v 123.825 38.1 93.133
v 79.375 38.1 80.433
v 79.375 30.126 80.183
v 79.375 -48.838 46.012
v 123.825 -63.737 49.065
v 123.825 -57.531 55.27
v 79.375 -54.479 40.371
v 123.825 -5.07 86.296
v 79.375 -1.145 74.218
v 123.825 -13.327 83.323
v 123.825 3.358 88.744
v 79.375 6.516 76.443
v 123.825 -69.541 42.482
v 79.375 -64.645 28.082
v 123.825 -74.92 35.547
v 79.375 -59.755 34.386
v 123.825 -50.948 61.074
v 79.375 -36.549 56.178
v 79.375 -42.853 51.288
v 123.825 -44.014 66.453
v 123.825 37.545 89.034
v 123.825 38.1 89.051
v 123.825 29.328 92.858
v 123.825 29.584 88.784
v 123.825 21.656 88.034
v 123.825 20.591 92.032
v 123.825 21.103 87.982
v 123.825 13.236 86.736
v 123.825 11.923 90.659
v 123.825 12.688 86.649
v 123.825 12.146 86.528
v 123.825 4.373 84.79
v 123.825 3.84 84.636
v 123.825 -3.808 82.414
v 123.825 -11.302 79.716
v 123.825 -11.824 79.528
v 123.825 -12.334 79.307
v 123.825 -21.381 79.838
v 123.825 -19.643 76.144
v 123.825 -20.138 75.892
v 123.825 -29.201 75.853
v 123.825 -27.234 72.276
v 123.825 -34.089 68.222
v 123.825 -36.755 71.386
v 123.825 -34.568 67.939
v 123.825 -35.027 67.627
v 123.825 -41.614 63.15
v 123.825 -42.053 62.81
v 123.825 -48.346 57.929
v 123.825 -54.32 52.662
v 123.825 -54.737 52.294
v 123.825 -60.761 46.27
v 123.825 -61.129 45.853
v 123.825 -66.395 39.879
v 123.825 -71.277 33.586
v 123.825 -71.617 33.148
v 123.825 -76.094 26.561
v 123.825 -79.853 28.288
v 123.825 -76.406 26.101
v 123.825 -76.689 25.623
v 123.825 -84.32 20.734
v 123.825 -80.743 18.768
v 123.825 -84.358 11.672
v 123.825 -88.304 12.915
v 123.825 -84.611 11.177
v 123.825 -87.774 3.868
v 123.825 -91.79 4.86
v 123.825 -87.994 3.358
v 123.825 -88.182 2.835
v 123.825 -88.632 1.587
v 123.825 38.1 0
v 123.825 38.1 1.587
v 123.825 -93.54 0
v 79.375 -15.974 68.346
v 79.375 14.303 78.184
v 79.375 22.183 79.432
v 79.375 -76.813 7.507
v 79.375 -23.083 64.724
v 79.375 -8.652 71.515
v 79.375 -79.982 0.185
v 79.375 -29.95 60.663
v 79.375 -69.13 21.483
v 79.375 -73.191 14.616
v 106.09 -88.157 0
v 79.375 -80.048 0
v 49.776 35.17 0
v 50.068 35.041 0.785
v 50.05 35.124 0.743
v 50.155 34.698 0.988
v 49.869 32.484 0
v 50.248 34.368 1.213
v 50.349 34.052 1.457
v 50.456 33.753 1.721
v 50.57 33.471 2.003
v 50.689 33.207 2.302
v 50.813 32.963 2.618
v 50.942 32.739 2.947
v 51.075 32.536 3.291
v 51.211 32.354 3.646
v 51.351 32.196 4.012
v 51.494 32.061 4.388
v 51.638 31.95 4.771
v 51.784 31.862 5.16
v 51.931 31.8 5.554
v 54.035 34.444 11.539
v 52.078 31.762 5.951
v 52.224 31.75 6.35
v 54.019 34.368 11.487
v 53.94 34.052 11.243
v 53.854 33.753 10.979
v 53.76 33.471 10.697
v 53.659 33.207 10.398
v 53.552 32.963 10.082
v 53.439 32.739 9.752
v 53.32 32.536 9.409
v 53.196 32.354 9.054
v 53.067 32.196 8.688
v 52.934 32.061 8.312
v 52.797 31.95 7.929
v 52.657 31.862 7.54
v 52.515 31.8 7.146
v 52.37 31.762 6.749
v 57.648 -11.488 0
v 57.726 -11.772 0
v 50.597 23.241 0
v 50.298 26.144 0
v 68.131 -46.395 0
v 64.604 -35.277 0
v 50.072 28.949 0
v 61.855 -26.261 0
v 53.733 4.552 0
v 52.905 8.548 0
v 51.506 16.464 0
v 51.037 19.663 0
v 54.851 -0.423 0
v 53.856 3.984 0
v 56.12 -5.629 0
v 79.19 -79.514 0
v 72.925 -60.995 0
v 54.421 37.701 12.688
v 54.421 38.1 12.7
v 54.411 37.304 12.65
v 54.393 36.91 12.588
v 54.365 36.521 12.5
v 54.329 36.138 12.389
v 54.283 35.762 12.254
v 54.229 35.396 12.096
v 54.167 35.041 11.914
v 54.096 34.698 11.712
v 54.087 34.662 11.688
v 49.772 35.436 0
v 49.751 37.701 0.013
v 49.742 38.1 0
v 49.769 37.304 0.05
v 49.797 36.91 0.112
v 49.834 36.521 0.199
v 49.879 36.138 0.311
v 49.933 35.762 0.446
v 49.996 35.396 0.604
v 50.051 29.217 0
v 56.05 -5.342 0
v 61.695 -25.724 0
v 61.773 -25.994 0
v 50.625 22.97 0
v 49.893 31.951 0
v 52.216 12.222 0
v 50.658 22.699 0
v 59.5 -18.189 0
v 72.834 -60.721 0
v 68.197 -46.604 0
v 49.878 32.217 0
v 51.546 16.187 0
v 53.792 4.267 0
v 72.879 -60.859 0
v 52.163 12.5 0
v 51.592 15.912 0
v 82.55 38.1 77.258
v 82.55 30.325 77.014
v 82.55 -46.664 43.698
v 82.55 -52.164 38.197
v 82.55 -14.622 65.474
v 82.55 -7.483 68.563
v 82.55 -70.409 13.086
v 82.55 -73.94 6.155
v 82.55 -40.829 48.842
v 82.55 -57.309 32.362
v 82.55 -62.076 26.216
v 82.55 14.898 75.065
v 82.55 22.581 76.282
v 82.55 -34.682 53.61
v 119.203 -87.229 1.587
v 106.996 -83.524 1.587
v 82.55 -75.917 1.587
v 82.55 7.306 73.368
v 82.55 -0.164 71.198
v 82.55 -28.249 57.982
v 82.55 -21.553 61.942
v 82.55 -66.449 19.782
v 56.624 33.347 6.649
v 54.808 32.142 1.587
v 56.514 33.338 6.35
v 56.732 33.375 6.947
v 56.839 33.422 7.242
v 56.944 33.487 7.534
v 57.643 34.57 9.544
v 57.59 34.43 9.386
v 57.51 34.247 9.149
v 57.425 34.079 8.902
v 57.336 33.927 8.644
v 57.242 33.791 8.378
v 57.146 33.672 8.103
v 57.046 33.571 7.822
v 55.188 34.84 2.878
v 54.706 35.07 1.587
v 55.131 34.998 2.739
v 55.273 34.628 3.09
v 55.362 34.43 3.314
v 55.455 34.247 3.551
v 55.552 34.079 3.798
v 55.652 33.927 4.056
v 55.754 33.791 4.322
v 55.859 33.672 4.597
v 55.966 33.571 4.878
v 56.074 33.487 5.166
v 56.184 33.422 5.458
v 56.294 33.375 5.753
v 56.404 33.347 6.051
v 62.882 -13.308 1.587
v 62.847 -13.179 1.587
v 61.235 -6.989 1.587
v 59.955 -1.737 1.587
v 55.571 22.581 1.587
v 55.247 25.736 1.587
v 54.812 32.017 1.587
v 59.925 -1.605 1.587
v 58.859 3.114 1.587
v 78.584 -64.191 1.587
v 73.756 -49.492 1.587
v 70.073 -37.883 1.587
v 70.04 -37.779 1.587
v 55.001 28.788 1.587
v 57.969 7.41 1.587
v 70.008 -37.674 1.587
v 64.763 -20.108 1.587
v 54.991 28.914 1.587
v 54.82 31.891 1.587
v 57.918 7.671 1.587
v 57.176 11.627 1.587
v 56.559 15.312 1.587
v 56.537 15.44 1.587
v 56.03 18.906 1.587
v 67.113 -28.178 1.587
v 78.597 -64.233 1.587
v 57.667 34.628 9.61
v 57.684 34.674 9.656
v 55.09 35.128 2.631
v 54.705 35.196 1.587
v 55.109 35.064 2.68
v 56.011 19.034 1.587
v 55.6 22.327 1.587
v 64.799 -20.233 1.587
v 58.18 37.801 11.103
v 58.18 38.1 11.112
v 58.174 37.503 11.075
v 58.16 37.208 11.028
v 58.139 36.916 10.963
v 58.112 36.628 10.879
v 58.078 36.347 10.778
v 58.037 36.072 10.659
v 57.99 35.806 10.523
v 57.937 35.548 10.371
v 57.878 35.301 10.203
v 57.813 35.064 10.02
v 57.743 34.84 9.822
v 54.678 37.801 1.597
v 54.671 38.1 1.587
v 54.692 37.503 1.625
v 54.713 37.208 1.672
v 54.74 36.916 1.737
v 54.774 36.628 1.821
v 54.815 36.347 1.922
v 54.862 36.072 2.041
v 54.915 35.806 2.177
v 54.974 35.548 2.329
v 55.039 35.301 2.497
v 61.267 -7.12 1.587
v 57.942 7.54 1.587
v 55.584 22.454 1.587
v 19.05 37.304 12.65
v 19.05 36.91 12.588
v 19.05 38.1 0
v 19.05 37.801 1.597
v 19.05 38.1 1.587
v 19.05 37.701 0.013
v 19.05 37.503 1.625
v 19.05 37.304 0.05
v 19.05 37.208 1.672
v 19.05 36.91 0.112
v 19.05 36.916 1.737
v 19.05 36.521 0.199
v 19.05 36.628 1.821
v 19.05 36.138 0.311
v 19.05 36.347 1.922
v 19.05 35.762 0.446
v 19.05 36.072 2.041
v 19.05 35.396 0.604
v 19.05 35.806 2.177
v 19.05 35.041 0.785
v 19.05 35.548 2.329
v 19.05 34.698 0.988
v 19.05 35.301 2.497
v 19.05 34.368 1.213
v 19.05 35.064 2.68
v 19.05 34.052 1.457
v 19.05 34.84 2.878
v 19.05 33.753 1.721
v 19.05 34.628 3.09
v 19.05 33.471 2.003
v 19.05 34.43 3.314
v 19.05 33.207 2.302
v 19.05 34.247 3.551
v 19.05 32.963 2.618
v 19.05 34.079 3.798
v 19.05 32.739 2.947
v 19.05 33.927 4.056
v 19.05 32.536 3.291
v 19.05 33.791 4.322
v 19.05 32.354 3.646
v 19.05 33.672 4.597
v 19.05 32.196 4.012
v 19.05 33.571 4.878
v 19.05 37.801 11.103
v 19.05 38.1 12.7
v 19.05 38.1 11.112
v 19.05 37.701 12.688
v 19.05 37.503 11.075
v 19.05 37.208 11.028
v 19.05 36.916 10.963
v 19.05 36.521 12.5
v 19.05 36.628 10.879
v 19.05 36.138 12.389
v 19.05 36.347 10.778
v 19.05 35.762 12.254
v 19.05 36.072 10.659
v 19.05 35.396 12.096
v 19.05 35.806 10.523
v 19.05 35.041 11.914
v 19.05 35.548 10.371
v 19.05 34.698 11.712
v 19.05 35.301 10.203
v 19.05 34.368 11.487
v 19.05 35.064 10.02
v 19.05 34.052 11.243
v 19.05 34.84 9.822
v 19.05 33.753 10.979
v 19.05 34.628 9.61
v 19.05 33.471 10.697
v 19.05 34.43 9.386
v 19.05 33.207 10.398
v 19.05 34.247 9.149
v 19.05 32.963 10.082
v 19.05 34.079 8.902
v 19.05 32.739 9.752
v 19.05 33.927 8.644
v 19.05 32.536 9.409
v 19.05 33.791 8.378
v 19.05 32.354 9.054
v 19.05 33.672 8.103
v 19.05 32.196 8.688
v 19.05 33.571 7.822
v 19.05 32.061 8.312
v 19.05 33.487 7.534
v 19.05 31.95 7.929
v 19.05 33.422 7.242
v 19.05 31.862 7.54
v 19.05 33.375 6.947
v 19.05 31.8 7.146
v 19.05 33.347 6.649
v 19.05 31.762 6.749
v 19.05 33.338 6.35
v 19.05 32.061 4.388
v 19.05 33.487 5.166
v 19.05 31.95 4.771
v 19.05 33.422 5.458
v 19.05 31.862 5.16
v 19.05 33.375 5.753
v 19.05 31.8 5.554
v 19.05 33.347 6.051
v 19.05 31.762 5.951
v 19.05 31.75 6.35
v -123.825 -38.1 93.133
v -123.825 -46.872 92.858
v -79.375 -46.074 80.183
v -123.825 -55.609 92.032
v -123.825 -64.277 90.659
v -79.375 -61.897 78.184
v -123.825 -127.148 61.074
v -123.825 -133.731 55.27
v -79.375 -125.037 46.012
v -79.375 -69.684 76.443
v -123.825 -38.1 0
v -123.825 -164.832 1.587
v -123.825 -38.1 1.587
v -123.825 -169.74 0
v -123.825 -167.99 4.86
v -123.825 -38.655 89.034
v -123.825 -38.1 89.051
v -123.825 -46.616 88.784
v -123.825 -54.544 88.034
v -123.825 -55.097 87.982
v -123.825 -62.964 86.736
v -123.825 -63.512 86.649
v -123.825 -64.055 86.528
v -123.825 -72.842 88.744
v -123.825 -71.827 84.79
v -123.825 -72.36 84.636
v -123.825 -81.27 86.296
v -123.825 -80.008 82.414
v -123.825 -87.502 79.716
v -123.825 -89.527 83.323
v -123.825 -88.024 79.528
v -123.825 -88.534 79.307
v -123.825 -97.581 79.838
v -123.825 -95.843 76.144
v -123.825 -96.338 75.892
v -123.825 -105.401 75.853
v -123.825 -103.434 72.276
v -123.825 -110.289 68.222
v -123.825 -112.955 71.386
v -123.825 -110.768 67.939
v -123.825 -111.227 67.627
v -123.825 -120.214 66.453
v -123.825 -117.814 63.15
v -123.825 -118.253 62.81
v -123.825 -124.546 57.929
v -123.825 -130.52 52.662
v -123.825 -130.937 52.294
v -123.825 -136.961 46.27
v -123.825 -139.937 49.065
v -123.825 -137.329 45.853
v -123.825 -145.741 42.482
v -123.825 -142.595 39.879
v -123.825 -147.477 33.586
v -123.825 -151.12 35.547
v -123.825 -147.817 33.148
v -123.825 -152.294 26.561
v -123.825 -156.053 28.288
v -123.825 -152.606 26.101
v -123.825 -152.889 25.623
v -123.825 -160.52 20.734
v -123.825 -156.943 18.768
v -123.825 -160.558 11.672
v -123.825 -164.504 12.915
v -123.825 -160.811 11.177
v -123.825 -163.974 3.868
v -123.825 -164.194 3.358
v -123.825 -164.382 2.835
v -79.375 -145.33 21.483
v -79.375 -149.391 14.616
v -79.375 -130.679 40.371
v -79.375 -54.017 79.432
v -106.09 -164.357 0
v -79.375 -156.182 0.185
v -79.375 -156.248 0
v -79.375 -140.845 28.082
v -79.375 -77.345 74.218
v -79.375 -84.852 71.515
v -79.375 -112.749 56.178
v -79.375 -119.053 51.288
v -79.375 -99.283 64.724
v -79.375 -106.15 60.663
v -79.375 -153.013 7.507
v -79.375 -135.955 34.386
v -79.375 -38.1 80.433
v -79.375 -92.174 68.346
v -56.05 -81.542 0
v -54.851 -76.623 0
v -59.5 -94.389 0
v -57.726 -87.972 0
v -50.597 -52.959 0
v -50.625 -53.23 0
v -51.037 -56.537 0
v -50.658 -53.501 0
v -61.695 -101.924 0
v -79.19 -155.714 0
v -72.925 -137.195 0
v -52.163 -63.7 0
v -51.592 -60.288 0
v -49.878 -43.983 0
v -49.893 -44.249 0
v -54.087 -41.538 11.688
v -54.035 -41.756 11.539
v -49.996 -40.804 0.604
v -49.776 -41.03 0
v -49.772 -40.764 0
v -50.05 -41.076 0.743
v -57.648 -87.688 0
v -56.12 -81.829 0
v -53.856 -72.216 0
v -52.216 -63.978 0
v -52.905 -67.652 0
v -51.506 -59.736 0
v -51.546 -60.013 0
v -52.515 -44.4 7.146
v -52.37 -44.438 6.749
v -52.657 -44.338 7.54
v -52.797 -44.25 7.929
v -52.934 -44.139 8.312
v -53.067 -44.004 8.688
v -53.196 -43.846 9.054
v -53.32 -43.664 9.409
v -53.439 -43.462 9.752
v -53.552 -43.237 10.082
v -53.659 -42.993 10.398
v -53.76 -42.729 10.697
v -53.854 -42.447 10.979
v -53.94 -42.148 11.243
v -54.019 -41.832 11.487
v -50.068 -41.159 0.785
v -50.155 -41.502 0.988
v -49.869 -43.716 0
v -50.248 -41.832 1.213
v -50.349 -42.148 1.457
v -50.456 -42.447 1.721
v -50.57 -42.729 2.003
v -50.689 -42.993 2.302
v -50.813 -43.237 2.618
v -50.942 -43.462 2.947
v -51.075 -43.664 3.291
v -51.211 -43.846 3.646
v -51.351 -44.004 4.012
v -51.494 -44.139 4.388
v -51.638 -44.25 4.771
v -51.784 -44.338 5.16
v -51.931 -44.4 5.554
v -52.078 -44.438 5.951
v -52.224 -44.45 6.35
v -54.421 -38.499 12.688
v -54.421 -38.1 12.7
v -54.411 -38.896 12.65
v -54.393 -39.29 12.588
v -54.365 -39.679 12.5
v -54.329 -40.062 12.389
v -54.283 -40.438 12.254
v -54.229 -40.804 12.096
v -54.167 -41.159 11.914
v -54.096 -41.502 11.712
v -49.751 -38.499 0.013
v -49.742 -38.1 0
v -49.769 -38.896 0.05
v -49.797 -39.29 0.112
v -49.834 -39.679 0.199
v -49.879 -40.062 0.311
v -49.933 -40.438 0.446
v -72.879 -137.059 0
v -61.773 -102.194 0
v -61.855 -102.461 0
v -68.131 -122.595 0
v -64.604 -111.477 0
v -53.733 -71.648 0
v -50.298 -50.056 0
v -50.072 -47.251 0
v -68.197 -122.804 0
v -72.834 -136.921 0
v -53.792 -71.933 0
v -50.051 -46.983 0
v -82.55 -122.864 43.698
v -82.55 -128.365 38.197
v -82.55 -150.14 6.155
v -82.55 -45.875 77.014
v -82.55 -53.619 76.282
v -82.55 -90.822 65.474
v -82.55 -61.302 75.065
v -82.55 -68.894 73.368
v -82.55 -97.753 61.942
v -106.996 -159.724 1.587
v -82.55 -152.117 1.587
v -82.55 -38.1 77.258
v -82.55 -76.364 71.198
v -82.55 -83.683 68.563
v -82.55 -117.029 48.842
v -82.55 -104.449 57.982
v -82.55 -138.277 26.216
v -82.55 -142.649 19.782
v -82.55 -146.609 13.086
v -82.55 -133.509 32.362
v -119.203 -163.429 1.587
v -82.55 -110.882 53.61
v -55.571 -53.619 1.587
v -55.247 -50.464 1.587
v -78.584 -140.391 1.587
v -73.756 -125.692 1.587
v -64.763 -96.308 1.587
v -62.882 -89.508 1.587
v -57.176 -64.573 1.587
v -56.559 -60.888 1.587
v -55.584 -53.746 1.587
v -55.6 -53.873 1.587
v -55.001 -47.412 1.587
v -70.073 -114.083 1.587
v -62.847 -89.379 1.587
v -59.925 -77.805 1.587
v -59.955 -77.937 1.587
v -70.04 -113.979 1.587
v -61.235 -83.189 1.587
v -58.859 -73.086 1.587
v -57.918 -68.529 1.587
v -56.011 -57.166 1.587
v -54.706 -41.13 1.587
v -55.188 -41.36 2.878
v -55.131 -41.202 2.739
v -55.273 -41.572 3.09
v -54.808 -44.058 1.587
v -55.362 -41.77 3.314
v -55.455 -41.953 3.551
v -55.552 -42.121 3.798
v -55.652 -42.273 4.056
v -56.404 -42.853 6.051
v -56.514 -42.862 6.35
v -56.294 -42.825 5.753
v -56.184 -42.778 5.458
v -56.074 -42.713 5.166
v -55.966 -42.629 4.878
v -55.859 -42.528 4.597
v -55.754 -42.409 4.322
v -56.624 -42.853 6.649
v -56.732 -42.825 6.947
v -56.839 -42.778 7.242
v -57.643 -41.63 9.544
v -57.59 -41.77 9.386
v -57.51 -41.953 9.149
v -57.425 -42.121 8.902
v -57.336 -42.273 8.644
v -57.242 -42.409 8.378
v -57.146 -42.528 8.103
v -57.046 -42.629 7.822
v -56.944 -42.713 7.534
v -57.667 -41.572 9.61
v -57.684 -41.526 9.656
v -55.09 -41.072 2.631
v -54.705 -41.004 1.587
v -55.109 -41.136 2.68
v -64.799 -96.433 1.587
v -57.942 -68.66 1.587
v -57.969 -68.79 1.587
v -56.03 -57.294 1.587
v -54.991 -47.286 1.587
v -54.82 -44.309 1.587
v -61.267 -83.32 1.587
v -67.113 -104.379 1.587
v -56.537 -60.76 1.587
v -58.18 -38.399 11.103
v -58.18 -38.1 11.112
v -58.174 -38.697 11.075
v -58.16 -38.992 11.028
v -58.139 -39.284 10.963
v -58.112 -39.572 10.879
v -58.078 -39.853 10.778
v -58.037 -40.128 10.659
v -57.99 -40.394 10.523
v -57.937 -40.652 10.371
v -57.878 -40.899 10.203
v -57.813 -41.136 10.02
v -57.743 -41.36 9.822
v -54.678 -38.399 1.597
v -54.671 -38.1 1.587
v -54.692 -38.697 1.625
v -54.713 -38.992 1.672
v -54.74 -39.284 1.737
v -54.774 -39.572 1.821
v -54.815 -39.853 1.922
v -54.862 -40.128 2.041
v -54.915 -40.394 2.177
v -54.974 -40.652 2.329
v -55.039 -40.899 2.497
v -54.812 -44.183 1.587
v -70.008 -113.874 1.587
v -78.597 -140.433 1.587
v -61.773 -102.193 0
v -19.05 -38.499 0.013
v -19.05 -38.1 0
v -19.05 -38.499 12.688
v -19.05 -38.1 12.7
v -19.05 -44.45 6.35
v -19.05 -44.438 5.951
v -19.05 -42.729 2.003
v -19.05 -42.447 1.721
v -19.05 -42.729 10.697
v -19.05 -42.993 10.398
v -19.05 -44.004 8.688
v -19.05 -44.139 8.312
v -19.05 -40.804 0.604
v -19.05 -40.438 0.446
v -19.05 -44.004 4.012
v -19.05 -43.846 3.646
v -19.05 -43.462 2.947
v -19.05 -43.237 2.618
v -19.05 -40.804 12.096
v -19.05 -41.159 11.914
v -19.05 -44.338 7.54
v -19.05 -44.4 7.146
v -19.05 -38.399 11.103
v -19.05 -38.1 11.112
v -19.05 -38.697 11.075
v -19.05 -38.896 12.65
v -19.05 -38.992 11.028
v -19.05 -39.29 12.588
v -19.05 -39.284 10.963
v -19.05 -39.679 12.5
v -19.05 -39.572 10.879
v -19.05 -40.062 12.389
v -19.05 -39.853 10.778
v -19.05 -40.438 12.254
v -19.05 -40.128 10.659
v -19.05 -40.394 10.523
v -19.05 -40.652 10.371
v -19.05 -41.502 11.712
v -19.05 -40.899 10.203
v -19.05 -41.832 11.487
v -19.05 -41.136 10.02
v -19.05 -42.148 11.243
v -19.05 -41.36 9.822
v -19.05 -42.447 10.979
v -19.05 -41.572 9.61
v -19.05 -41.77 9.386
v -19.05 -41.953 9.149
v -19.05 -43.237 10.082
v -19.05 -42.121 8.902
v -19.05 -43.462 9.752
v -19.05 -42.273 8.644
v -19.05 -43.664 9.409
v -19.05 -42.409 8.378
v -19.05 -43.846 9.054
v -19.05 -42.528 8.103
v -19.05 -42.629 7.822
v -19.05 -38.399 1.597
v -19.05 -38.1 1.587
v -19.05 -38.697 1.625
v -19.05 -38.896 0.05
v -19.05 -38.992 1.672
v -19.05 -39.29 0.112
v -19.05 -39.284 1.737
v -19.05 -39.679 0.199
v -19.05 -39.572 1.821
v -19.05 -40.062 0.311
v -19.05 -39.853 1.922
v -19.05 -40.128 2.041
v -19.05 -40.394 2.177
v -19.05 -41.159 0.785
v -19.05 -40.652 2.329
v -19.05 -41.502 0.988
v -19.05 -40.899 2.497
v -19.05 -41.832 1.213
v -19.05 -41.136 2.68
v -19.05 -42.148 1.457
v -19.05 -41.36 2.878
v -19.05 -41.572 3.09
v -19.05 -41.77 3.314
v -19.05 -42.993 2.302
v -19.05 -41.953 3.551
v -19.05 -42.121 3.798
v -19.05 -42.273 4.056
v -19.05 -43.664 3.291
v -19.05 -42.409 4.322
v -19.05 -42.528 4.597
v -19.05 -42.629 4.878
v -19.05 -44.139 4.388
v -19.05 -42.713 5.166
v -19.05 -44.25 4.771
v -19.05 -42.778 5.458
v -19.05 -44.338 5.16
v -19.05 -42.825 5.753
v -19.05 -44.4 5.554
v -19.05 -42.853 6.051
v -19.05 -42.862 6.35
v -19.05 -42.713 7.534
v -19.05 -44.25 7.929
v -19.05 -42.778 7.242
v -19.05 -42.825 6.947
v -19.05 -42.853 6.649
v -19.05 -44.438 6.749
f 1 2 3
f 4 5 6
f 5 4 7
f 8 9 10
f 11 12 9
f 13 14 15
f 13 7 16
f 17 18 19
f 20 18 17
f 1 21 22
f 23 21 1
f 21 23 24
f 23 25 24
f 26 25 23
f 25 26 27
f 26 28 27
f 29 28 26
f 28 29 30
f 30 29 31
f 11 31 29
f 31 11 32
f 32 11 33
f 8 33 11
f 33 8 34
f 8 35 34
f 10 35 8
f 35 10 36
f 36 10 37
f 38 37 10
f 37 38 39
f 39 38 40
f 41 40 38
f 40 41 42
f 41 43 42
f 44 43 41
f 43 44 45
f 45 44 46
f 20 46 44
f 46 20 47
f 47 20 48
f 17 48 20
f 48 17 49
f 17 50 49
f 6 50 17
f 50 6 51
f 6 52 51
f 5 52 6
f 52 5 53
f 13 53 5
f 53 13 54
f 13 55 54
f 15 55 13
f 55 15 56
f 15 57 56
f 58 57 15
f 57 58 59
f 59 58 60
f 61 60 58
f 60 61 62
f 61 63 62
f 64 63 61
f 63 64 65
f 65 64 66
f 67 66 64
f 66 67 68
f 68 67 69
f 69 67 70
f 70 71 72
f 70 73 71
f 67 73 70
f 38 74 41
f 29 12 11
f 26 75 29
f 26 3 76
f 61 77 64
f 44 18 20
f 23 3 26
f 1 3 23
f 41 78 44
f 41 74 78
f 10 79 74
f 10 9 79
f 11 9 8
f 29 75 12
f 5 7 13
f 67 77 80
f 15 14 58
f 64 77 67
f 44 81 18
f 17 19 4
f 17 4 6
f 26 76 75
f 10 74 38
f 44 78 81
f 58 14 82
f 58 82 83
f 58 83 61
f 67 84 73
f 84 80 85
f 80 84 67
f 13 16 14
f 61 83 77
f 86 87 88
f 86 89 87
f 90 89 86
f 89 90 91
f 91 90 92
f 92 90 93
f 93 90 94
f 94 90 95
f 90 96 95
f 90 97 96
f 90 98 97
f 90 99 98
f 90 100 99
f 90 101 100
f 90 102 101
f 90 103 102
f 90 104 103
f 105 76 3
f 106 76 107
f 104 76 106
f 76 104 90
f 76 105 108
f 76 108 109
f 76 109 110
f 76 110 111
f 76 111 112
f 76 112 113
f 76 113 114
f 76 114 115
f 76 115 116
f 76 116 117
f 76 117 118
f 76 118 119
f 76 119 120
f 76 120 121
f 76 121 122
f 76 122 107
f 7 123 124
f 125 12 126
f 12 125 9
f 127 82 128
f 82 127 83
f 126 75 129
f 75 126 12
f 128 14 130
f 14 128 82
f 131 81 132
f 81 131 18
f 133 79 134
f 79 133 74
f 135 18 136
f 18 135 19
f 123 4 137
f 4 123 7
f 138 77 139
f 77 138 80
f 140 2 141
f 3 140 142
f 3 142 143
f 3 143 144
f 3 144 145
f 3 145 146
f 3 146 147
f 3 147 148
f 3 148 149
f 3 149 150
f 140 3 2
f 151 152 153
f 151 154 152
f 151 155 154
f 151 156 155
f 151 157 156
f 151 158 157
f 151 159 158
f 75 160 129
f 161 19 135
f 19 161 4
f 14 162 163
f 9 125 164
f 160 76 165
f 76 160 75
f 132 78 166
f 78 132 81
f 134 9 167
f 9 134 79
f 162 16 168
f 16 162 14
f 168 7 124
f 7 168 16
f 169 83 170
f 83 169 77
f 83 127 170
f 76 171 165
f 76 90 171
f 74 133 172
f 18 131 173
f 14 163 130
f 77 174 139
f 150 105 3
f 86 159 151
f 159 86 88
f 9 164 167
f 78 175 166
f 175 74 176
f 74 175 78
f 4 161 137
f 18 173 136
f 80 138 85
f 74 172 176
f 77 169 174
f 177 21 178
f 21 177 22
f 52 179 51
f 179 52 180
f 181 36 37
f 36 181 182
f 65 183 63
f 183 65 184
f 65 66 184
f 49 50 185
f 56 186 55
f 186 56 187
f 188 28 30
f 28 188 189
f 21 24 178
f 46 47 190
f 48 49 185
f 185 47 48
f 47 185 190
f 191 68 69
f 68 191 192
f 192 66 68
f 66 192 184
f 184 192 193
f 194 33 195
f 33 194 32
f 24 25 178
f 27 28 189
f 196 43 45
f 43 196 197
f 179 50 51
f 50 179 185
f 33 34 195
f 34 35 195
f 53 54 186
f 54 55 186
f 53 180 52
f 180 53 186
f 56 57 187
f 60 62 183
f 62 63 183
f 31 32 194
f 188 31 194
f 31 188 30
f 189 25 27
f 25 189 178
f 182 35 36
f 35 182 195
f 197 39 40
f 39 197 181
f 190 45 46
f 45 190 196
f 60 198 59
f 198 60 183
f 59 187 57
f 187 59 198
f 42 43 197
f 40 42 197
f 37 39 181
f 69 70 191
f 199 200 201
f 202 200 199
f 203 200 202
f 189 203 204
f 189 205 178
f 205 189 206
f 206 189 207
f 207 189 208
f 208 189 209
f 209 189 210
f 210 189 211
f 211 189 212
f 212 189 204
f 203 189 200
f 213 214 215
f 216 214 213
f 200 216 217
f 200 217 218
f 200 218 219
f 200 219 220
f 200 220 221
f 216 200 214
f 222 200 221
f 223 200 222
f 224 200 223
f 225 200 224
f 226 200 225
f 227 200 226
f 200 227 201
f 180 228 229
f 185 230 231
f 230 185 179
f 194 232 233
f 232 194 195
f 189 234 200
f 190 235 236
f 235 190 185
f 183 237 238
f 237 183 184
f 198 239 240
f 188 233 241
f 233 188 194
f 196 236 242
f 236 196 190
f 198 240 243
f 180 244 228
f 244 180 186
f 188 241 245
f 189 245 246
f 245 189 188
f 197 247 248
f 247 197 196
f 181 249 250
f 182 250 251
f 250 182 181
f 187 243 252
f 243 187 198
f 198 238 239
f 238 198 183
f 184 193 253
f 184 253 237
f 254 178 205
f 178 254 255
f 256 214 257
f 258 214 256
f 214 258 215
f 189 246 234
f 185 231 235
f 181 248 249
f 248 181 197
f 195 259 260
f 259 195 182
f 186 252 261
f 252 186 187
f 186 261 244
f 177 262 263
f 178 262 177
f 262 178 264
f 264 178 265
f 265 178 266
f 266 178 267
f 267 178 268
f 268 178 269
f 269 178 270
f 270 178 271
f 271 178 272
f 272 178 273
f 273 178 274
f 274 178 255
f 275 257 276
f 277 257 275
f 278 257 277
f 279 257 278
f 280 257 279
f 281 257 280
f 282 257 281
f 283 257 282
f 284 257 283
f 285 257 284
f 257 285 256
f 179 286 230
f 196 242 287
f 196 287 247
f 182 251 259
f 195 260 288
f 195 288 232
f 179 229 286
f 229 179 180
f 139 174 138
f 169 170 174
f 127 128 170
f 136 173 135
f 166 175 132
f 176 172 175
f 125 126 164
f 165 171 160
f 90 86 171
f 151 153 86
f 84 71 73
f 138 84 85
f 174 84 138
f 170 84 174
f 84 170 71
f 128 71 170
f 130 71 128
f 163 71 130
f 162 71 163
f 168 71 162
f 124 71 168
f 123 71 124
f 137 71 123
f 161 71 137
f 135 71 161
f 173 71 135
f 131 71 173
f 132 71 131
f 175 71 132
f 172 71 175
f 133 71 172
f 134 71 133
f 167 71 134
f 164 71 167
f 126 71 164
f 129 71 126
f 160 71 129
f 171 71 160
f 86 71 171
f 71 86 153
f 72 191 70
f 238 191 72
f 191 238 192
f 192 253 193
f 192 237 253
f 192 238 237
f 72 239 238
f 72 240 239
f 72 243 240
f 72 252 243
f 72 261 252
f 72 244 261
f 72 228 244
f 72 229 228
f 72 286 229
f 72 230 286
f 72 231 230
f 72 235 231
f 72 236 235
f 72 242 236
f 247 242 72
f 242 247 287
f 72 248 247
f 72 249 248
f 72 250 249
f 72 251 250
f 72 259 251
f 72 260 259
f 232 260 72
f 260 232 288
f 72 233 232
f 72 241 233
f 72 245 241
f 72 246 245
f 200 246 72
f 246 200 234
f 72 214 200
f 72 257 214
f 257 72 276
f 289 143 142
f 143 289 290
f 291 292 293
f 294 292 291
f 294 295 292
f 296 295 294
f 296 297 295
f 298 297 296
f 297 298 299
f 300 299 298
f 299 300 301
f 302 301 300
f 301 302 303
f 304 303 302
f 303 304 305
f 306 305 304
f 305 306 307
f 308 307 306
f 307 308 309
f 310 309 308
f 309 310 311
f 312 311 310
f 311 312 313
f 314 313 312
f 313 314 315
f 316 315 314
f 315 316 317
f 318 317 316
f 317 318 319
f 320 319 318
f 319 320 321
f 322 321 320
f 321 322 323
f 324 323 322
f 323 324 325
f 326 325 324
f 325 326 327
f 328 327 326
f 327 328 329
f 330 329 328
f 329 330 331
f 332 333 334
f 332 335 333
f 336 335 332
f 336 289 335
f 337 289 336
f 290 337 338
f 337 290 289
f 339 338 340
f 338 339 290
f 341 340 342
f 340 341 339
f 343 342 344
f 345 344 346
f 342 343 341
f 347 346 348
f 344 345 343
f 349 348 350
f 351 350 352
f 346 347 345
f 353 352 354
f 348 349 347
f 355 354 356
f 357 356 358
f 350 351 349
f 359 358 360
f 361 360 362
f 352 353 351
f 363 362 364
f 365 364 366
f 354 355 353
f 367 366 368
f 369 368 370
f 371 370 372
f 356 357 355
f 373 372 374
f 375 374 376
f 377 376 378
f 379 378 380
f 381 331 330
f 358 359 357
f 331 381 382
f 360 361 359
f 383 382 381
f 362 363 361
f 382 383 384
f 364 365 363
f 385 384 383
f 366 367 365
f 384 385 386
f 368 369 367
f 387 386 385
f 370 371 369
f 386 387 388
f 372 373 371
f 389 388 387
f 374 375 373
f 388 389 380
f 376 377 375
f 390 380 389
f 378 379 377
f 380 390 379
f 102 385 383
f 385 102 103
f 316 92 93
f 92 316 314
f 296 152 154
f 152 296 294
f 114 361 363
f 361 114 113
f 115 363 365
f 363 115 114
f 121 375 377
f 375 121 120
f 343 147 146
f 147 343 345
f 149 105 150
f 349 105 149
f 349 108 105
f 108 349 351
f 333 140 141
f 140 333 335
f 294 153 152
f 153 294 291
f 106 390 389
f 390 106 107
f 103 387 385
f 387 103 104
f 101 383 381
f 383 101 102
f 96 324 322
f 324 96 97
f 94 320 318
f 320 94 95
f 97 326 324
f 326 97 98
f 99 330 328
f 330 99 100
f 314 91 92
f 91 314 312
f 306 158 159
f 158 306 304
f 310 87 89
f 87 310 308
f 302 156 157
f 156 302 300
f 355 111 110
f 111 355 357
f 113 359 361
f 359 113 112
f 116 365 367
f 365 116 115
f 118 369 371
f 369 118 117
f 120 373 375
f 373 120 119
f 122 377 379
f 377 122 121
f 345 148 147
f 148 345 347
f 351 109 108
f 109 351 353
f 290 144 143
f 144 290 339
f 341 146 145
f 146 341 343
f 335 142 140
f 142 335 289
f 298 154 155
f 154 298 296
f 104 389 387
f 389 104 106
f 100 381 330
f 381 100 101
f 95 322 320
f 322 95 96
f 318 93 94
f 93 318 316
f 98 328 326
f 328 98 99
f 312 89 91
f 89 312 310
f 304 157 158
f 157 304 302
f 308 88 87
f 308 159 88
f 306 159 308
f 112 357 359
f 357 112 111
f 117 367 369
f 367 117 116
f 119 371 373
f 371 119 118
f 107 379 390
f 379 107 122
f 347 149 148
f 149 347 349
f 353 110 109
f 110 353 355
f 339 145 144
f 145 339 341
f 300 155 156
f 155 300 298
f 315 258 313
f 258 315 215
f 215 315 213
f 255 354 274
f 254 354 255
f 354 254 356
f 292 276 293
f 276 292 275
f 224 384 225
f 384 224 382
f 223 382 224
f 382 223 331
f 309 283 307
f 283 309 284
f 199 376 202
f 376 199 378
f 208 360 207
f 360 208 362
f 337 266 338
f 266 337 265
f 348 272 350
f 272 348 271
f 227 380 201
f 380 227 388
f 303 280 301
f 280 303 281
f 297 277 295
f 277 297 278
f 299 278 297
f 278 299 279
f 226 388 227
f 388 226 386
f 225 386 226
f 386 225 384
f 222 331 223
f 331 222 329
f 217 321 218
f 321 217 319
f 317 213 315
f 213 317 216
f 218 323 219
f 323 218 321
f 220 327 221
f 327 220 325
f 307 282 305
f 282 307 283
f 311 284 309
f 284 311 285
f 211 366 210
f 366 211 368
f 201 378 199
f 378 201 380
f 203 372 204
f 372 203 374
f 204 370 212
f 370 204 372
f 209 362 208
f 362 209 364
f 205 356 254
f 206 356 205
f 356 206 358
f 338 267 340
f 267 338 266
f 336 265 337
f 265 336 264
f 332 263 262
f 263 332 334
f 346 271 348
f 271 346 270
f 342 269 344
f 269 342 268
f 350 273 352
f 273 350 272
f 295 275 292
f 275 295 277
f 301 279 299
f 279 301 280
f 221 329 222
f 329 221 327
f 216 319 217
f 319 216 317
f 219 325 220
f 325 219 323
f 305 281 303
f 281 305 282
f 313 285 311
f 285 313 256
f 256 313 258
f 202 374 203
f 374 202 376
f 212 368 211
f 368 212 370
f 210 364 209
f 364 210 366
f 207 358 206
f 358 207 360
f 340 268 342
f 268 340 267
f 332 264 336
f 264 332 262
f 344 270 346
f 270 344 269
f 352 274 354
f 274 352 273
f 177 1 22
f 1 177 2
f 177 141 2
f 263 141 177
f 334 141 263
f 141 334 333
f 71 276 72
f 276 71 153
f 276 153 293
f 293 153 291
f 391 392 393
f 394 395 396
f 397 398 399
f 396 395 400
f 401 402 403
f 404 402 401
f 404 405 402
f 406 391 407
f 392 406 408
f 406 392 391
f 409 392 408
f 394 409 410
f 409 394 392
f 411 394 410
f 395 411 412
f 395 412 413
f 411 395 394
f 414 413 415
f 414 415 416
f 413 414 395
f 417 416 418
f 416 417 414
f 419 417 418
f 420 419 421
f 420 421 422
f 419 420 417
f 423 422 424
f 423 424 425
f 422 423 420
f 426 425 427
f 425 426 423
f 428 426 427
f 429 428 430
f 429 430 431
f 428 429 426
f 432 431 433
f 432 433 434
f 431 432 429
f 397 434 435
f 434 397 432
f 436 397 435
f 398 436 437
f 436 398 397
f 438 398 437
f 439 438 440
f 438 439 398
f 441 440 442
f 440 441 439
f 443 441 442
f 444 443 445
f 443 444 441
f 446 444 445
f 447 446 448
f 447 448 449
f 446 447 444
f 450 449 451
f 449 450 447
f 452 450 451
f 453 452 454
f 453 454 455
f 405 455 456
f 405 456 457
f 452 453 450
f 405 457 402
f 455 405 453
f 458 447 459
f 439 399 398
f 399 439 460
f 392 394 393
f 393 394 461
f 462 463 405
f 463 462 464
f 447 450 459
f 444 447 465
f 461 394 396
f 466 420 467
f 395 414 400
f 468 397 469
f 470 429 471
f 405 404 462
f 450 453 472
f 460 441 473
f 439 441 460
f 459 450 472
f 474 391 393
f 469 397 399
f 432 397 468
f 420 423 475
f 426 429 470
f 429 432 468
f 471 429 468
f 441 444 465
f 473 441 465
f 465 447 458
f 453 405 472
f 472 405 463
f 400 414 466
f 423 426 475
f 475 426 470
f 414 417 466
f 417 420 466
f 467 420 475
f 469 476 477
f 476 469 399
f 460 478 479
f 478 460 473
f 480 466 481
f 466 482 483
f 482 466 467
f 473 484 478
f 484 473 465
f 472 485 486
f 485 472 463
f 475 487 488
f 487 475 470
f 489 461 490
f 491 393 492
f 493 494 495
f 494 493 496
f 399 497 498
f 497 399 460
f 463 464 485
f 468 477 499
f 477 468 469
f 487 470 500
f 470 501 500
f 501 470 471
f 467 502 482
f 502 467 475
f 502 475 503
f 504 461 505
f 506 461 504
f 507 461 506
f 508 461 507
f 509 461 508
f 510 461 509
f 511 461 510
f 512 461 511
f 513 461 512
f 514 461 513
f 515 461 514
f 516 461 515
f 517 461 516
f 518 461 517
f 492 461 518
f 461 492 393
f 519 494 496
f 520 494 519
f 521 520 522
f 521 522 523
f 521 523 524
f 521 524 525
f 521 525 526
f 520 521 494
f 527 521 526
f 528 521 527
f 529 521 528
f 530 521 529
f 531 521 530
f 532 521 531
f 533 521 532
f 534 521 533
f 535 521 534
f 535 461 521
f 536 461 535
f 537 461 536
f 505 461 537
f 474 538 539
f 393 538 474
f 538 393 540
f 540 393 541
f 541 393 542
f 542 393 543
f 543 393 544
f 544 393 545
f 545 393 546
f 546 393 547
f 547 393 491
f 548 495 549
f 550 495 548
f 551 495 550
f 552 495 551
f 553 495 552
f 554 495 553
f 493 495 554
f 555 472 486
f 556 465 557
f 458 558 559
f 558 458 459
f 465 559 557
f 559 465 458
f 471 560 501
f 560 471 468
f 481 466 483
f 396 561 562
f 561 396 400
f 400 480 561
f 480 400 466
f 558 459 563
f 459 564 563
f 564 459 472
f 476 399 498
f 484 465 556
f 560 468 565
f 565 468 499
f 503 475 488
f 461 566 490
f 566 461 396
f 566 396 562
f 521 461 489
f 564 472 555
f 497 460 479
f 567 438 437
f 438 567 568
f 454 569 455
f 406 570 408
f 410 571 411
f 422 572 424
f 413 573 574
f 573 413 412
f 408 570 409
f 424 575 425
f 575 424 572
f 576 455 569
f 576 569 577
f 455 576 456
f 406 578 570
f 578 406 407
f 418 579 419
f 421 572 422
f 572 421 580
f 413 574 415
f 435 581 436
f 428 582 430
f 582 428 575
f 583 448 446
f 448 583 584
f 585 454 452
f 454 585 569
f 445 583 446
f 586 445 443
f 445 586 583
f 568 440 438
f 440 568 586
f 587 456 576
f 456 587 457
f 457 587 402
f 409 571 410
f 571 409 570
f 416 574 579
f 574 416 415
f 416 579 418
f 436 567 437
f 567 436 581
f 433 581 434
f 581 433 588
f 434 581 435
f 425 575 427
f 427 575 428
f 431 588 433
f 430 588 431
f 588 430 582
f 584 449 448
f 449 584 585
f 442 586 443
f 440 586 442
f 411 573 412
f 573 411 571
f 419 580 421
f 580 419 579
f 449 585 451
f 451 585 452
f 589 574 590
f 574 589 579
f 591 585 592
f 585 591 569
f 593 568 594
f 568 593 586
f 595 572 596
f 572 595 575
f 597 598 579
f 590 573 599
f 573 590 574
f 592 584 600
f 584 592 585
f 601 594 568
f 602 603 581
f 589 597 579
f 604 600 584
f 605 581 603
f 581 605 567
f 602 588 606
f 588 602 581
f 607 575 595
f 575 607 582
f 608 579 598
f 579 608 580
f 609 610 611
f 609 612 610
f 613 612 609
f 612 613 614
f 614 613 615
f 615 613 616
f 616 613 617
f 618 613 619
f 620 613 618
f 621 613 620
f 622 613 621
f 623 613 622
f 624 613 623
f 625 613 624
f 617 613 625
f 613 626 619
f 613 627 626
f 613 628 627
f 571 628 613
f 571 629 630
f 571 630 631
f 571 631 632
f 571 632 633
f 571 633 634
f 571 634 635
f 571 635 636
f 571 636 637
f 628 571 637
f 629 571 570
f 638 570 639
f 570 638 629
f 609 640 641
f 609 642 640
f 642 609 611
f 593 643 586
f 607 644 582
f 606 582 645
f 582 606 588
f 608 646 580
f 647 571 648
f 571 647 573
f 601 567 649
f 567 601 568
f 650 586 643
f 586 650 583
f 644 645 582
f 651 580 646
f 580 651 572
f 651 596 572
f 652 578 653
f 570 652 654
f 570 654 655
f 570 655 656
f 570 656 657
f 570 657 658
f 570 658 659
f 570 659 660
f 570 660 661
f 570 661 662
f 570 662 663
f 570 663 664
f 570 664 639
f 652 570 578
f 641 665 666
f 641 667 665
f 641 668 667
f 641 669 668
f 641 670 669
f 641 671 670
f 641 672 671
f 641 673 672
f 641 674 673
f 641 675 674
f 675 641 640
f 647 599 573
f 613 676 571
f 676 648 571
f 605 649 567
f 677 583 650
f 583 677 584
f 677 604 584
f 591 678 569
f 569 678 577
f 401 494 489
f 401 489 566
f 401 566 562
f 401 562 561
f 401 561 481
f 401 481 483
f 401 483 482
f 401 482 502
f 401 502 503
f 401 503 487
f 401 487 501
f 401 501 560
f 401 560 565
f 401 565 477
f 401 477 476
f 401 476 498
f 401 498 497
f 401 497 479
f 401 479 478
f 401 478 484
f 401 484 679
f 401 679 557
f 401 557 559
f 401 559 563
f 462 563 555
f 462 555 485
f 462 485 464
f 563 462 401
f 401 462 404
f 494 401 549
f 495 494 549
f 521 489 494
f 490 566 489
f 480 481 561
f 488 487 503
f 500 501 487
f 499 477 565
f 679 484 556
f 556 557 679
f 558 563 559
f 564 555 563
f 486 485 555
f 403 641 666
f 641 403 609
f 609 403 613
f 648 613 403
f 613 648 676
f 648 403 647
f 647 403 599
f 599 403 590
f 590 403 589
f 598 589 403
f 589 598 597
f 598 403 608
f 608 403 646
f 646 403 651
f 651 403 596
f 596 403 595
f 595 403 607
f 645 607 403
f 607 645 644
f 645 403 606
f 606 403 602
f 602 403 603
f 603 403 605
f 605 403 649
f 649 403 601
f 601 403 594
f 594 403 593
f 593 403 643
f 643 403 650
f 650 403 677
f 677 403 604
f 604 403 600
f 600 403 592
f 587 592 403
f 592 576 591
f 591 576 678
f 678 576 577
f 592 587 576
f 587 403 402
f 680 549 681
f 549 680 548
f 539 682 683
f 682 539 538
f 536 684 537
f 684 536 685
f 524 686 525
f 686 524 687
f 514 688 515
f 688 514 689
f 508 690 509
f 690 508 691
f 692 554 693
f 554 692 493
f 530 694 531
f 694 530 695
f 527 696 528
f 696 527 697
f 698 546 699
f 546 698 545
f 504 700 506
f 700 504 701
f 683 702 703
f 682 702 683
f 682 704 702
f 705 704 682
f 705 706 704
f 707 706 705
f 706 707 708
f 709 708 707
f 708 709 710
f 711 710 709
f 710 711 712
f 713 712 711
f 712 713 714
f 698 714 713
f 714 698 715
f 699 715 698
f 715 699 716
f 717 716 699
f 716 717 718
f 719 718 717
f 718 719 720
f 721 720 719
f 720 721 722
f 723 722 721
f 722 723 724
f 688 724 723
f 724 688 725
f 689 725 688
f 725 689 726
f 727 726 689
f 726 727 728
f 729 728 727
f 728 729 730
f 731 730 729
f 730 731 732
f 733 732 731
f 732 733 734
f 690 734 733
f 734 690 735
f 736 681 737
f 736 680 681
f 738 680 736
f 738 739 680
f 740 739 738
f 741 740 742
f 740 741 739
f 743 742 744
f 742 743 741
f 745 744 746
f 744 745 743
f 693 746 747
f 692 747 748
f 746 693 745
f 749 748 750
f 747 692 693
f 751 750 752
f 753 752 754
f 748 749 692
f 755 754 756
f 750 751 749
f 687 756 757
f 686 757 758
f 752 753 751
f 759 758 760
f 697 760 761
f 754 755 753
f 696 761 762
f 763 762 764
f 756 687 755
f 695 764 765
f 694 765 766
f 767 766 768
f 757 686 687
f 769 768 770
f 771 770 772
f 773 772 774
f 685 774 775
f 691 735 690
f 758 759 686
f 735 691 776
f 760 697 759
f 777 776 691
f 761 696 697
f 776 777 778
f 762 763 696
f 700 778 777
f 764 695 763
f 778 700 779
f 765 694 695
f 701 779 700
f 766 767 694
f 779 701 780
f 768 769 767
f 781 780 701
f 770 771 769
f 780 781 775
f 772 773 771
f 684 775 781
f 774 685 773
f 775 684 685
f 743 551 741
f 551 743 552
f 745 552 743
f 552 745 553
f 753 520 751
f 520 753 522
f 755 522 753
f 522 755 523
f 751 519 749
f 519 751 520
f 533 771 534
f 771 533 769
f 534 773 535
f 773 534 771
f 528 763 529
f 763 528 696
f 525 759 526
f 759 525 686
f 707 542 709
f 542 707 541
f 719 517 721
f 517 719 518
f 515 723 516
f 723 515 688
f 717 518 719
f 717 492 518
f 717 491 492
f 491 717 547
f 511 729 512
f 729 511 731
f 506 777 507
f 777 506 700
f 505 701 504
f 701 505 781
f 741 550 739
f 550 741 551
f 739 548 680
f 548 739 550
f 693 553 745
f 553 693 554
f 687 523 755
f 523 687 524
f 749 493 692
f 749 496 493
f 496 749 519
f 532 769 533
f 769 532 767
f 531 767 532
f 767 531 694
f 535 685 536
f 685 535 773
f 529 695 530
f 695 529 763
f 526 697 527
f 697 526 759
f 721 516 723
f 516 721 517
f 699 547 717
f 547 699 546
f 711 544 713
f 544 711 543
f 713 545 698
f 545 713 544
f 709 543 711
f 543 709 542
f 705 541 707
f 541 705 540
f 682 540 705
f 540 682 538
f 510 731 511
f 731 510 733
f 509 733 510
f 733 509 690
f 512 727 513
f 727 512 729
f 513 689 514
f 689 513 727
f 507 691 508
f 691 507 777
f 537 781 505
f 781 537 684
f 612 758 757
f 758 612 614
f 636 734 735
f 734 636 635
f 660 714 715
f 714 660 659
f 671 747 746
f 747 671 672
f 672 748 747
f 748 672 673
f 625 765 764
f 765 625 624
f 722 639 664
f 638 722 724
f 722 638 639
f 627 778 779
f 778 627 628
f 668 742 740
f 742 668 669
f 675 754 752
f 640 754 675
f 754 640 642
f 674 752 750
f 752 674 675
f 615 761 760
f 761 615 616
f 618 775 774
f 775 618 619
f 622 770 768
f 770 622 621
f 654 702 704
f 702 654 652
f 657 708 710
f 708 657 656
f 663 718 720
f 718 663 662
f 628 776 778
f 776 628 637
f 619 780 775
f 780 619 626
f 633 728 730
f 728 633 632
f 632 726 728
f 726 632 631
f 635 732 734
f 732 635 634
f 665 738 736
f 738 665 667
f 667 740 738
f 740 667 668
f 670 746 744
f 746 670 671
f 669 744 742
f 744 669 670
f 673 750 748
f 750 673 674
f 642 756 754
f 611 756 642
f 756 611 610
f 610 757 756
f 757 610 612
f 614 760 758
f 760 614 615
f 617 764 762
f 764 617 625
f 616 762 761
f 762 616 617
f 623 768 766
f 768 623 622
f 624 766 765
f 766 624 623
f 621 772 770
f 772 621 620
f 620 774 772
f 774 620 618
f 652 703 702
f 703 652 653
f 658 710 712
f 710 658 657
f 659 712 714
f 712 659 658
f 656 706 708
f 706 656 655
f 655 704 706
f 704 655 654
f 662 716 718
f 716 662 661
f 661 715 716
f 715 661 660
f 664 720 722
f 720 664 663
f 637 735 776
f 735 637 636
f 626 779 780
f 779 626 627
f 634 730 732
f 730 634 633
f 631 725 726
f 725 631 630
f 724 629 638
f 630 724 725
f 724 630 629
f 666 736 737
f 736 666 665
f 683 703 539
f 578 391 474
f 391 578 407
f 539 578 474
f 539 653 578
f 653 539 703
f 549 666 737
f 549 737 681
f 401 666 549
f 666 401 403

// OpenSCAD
//Need to comment variables and clarify module comments.

bucketDiameter = 11;
stage1Height = 1.75;
stage2Height = 1.75;
stage1Reduction = 10;
stage2Reduction = 0.5;

cutoffAmount = 1/3;

sfn=100;
thickness = 0.125;
tubeLength = 1.5;
tubeThick = 0.0625;
overlap = 1;
cutoff=0;
largeNumber = 100;

distBetween = 3;

diverterHeight = stage1Height+stage2Height+tubeLength;
cutoffRecip = 1/cutoffAmount;

tubeOverlap = 1;

mode = 1;



module mainDiverter() {
    difference() {
        union() {
            //All of these cylinders start with a big radius at the top (r2) and small radius at the bottom (r1). The bottom radius of stage 1 and the top radius of stage 2 match up so that the piece can start with a relaxed angle and slowly get steeper.
            cylinder(r2=bucketDiameter/2, r1=stage1Reduction/2, h=stage1Height, $fn=sfn, center=true);
            //Moving the second cylinder down - same concept as the first cylinder, but with a steeper decline.
            translate([0,0,(stage1Height+stage2Height)/-2]) cylinder(r2=stage1Reduction/2, r1=stage2Reduction/2, h=stage2Height, $fn=sfn, center=true);
        }
        //Both of these are the exact same as the cylinders above, except they are what to take AWAY from the diverter. In this case, we're taking away everything except the thickness on each side. Everything moved up by thickness because there needs to be some material (thickness) on the bottom.
        translate([0,0,thickness]) cylinder(r2=(bucketDiameter-thickness*2)/2, r1=(stage1Reduction-thickness*2)/2, h=stage1Height, $fn=sfn, center=true);
        translate([0,0,(stage1Height+stage2Height-thickness*2)/-2]) cylinder(r2=(stage1Reduction-thickness*2)/2, r1=(stage2Reduction-thickness*2)/2, h=stage2Height, $fn=sfn, center=true);
    }
}

module partialDiverter() {
    difference() {
        //Taking the difference of the main diverter and a cube to cutoff a certain amount of the diverter (determined by the cutoffAmount variable)
        mainDiverter(center=true);
        //Moving the cube (the cube is the size of the entire diverter) over by a predetermined fraction of full diverter length (or in other words, the a fraction diameter of the bucket, bucketDiameter)
        translate([(bucketDiameter)/cutoffRecip, 0, (stage1Height+overlap-cutoff)/-2])  cube([bucketDiameter, bucketDiameter, diverterHeight*2], center=true);
    }
}

module coverGuard() {
    intersection() {
        //Takes the hull (fully solid version) of the partial diverter. This is used to make an "imprint" to determine the exact shape of the side cover. This "imprint" is the intersection module which determines what is intersecting between the partial diverter and a flat piece of material. This is how we fully cover the side accurately. 
            hull() partialDiverter();
        //Moves it to the place by going the bucket diameter (times the fraction, example 1/2 of the bucket diameter) but subtracts 1/2 because the diverter is in the center.
            translate([bucketDiameter*(cutoffAmount-0.5),0,0]) cube([thickness, bucketDiameter,bucketDiameter], center=true);
    }  
}

module tube() {
    //Perfectly shaping the top of the tube (to adapt to the contours of the diverter) by subtracting the shape of the diverter from the tube. 
    difference() {
        //Moving the tube to the edge of the diverter and slightly in to make sure all of the tube is inside the diverter. Moves it to the place by going the bucket diameter (times the fraction, example 1/2 of the bucket diameter) but subtracts 1/2 because the diverter is in the center. 
        translate([bucketDiameter*(cutoffAmount-0.5)-stage2Reduction/2,0,(stage1Height+stage2Height+tubeLength-tubeOverlap)/-2]) cylinder(r=stage2Reduction/2, h=tubeLength+tubeOverlap, $fn=sfn, center=true);
        //Subtracting the hull (filled in version of the diverter) from the tube so that it contours perfectly to the shape of the diverter. 
       hull() partialDiverter(); 
    }
}

module finalDiverter() {
    difference() {
        union() {
            //Connecting the partial diverter, coverguard, and not hollowed out tube.
            partialDiverter();
            coverGuard();
            tube();
        }
        //Hollowing out the tube and continuing it  through the diverter so that urine can flow. 
       translate([bucketDiameter*(cutoffAmount-0.5)-stage2Reduction/2,0,0]) cylinder(r=(stage2Reduction-tubeThick*2)/2, h=(diverterHeight+tubeLength)*2, center=true, $fn=sfn);
    }
}

module separation() {
    //Separating the diverter into two pieces by subtracting cubes from each side. 
    translate([0,0,bucketDiameter*(cutoffAmount-0.5)]) for(i = [1, -1]) {
        translate([(diverterHeight+distBetween)/2*i,distBetween/2*i,0]) rotate([0,90,90-90*i]) difference() {
            finalDiverter();
            translate([0,bucketDiameter/4*i,(diverterHeight+thickness*2)/-4]) cube([bucketDiameter, bucketDiameter/2, diverterHeight*2], center=true);
        }
    }
}

    
/*   translate([diverterHeight/2+distBetween,bucketDiameter/-4+thickness,0]) rotate([0,90,0]) difference() {
    fullDiverter();
    translate([0,bucketDiameter/-4,(diverterHeight+thickness*2)/-4]) cube([bucketDiameter, bucketDiameter/2, diverterHeight+thickness*2], center=true); */

module final() {
    scale([25.4, 25.4, 25.4])  {
        if(mode == 1) {
            separation();
        }
        else if(mode == 2) {
            translate([bucketDiameter*-(cutoffAmount-0.5),0,0]) finalDiverter();
        }
    }
}

final();
